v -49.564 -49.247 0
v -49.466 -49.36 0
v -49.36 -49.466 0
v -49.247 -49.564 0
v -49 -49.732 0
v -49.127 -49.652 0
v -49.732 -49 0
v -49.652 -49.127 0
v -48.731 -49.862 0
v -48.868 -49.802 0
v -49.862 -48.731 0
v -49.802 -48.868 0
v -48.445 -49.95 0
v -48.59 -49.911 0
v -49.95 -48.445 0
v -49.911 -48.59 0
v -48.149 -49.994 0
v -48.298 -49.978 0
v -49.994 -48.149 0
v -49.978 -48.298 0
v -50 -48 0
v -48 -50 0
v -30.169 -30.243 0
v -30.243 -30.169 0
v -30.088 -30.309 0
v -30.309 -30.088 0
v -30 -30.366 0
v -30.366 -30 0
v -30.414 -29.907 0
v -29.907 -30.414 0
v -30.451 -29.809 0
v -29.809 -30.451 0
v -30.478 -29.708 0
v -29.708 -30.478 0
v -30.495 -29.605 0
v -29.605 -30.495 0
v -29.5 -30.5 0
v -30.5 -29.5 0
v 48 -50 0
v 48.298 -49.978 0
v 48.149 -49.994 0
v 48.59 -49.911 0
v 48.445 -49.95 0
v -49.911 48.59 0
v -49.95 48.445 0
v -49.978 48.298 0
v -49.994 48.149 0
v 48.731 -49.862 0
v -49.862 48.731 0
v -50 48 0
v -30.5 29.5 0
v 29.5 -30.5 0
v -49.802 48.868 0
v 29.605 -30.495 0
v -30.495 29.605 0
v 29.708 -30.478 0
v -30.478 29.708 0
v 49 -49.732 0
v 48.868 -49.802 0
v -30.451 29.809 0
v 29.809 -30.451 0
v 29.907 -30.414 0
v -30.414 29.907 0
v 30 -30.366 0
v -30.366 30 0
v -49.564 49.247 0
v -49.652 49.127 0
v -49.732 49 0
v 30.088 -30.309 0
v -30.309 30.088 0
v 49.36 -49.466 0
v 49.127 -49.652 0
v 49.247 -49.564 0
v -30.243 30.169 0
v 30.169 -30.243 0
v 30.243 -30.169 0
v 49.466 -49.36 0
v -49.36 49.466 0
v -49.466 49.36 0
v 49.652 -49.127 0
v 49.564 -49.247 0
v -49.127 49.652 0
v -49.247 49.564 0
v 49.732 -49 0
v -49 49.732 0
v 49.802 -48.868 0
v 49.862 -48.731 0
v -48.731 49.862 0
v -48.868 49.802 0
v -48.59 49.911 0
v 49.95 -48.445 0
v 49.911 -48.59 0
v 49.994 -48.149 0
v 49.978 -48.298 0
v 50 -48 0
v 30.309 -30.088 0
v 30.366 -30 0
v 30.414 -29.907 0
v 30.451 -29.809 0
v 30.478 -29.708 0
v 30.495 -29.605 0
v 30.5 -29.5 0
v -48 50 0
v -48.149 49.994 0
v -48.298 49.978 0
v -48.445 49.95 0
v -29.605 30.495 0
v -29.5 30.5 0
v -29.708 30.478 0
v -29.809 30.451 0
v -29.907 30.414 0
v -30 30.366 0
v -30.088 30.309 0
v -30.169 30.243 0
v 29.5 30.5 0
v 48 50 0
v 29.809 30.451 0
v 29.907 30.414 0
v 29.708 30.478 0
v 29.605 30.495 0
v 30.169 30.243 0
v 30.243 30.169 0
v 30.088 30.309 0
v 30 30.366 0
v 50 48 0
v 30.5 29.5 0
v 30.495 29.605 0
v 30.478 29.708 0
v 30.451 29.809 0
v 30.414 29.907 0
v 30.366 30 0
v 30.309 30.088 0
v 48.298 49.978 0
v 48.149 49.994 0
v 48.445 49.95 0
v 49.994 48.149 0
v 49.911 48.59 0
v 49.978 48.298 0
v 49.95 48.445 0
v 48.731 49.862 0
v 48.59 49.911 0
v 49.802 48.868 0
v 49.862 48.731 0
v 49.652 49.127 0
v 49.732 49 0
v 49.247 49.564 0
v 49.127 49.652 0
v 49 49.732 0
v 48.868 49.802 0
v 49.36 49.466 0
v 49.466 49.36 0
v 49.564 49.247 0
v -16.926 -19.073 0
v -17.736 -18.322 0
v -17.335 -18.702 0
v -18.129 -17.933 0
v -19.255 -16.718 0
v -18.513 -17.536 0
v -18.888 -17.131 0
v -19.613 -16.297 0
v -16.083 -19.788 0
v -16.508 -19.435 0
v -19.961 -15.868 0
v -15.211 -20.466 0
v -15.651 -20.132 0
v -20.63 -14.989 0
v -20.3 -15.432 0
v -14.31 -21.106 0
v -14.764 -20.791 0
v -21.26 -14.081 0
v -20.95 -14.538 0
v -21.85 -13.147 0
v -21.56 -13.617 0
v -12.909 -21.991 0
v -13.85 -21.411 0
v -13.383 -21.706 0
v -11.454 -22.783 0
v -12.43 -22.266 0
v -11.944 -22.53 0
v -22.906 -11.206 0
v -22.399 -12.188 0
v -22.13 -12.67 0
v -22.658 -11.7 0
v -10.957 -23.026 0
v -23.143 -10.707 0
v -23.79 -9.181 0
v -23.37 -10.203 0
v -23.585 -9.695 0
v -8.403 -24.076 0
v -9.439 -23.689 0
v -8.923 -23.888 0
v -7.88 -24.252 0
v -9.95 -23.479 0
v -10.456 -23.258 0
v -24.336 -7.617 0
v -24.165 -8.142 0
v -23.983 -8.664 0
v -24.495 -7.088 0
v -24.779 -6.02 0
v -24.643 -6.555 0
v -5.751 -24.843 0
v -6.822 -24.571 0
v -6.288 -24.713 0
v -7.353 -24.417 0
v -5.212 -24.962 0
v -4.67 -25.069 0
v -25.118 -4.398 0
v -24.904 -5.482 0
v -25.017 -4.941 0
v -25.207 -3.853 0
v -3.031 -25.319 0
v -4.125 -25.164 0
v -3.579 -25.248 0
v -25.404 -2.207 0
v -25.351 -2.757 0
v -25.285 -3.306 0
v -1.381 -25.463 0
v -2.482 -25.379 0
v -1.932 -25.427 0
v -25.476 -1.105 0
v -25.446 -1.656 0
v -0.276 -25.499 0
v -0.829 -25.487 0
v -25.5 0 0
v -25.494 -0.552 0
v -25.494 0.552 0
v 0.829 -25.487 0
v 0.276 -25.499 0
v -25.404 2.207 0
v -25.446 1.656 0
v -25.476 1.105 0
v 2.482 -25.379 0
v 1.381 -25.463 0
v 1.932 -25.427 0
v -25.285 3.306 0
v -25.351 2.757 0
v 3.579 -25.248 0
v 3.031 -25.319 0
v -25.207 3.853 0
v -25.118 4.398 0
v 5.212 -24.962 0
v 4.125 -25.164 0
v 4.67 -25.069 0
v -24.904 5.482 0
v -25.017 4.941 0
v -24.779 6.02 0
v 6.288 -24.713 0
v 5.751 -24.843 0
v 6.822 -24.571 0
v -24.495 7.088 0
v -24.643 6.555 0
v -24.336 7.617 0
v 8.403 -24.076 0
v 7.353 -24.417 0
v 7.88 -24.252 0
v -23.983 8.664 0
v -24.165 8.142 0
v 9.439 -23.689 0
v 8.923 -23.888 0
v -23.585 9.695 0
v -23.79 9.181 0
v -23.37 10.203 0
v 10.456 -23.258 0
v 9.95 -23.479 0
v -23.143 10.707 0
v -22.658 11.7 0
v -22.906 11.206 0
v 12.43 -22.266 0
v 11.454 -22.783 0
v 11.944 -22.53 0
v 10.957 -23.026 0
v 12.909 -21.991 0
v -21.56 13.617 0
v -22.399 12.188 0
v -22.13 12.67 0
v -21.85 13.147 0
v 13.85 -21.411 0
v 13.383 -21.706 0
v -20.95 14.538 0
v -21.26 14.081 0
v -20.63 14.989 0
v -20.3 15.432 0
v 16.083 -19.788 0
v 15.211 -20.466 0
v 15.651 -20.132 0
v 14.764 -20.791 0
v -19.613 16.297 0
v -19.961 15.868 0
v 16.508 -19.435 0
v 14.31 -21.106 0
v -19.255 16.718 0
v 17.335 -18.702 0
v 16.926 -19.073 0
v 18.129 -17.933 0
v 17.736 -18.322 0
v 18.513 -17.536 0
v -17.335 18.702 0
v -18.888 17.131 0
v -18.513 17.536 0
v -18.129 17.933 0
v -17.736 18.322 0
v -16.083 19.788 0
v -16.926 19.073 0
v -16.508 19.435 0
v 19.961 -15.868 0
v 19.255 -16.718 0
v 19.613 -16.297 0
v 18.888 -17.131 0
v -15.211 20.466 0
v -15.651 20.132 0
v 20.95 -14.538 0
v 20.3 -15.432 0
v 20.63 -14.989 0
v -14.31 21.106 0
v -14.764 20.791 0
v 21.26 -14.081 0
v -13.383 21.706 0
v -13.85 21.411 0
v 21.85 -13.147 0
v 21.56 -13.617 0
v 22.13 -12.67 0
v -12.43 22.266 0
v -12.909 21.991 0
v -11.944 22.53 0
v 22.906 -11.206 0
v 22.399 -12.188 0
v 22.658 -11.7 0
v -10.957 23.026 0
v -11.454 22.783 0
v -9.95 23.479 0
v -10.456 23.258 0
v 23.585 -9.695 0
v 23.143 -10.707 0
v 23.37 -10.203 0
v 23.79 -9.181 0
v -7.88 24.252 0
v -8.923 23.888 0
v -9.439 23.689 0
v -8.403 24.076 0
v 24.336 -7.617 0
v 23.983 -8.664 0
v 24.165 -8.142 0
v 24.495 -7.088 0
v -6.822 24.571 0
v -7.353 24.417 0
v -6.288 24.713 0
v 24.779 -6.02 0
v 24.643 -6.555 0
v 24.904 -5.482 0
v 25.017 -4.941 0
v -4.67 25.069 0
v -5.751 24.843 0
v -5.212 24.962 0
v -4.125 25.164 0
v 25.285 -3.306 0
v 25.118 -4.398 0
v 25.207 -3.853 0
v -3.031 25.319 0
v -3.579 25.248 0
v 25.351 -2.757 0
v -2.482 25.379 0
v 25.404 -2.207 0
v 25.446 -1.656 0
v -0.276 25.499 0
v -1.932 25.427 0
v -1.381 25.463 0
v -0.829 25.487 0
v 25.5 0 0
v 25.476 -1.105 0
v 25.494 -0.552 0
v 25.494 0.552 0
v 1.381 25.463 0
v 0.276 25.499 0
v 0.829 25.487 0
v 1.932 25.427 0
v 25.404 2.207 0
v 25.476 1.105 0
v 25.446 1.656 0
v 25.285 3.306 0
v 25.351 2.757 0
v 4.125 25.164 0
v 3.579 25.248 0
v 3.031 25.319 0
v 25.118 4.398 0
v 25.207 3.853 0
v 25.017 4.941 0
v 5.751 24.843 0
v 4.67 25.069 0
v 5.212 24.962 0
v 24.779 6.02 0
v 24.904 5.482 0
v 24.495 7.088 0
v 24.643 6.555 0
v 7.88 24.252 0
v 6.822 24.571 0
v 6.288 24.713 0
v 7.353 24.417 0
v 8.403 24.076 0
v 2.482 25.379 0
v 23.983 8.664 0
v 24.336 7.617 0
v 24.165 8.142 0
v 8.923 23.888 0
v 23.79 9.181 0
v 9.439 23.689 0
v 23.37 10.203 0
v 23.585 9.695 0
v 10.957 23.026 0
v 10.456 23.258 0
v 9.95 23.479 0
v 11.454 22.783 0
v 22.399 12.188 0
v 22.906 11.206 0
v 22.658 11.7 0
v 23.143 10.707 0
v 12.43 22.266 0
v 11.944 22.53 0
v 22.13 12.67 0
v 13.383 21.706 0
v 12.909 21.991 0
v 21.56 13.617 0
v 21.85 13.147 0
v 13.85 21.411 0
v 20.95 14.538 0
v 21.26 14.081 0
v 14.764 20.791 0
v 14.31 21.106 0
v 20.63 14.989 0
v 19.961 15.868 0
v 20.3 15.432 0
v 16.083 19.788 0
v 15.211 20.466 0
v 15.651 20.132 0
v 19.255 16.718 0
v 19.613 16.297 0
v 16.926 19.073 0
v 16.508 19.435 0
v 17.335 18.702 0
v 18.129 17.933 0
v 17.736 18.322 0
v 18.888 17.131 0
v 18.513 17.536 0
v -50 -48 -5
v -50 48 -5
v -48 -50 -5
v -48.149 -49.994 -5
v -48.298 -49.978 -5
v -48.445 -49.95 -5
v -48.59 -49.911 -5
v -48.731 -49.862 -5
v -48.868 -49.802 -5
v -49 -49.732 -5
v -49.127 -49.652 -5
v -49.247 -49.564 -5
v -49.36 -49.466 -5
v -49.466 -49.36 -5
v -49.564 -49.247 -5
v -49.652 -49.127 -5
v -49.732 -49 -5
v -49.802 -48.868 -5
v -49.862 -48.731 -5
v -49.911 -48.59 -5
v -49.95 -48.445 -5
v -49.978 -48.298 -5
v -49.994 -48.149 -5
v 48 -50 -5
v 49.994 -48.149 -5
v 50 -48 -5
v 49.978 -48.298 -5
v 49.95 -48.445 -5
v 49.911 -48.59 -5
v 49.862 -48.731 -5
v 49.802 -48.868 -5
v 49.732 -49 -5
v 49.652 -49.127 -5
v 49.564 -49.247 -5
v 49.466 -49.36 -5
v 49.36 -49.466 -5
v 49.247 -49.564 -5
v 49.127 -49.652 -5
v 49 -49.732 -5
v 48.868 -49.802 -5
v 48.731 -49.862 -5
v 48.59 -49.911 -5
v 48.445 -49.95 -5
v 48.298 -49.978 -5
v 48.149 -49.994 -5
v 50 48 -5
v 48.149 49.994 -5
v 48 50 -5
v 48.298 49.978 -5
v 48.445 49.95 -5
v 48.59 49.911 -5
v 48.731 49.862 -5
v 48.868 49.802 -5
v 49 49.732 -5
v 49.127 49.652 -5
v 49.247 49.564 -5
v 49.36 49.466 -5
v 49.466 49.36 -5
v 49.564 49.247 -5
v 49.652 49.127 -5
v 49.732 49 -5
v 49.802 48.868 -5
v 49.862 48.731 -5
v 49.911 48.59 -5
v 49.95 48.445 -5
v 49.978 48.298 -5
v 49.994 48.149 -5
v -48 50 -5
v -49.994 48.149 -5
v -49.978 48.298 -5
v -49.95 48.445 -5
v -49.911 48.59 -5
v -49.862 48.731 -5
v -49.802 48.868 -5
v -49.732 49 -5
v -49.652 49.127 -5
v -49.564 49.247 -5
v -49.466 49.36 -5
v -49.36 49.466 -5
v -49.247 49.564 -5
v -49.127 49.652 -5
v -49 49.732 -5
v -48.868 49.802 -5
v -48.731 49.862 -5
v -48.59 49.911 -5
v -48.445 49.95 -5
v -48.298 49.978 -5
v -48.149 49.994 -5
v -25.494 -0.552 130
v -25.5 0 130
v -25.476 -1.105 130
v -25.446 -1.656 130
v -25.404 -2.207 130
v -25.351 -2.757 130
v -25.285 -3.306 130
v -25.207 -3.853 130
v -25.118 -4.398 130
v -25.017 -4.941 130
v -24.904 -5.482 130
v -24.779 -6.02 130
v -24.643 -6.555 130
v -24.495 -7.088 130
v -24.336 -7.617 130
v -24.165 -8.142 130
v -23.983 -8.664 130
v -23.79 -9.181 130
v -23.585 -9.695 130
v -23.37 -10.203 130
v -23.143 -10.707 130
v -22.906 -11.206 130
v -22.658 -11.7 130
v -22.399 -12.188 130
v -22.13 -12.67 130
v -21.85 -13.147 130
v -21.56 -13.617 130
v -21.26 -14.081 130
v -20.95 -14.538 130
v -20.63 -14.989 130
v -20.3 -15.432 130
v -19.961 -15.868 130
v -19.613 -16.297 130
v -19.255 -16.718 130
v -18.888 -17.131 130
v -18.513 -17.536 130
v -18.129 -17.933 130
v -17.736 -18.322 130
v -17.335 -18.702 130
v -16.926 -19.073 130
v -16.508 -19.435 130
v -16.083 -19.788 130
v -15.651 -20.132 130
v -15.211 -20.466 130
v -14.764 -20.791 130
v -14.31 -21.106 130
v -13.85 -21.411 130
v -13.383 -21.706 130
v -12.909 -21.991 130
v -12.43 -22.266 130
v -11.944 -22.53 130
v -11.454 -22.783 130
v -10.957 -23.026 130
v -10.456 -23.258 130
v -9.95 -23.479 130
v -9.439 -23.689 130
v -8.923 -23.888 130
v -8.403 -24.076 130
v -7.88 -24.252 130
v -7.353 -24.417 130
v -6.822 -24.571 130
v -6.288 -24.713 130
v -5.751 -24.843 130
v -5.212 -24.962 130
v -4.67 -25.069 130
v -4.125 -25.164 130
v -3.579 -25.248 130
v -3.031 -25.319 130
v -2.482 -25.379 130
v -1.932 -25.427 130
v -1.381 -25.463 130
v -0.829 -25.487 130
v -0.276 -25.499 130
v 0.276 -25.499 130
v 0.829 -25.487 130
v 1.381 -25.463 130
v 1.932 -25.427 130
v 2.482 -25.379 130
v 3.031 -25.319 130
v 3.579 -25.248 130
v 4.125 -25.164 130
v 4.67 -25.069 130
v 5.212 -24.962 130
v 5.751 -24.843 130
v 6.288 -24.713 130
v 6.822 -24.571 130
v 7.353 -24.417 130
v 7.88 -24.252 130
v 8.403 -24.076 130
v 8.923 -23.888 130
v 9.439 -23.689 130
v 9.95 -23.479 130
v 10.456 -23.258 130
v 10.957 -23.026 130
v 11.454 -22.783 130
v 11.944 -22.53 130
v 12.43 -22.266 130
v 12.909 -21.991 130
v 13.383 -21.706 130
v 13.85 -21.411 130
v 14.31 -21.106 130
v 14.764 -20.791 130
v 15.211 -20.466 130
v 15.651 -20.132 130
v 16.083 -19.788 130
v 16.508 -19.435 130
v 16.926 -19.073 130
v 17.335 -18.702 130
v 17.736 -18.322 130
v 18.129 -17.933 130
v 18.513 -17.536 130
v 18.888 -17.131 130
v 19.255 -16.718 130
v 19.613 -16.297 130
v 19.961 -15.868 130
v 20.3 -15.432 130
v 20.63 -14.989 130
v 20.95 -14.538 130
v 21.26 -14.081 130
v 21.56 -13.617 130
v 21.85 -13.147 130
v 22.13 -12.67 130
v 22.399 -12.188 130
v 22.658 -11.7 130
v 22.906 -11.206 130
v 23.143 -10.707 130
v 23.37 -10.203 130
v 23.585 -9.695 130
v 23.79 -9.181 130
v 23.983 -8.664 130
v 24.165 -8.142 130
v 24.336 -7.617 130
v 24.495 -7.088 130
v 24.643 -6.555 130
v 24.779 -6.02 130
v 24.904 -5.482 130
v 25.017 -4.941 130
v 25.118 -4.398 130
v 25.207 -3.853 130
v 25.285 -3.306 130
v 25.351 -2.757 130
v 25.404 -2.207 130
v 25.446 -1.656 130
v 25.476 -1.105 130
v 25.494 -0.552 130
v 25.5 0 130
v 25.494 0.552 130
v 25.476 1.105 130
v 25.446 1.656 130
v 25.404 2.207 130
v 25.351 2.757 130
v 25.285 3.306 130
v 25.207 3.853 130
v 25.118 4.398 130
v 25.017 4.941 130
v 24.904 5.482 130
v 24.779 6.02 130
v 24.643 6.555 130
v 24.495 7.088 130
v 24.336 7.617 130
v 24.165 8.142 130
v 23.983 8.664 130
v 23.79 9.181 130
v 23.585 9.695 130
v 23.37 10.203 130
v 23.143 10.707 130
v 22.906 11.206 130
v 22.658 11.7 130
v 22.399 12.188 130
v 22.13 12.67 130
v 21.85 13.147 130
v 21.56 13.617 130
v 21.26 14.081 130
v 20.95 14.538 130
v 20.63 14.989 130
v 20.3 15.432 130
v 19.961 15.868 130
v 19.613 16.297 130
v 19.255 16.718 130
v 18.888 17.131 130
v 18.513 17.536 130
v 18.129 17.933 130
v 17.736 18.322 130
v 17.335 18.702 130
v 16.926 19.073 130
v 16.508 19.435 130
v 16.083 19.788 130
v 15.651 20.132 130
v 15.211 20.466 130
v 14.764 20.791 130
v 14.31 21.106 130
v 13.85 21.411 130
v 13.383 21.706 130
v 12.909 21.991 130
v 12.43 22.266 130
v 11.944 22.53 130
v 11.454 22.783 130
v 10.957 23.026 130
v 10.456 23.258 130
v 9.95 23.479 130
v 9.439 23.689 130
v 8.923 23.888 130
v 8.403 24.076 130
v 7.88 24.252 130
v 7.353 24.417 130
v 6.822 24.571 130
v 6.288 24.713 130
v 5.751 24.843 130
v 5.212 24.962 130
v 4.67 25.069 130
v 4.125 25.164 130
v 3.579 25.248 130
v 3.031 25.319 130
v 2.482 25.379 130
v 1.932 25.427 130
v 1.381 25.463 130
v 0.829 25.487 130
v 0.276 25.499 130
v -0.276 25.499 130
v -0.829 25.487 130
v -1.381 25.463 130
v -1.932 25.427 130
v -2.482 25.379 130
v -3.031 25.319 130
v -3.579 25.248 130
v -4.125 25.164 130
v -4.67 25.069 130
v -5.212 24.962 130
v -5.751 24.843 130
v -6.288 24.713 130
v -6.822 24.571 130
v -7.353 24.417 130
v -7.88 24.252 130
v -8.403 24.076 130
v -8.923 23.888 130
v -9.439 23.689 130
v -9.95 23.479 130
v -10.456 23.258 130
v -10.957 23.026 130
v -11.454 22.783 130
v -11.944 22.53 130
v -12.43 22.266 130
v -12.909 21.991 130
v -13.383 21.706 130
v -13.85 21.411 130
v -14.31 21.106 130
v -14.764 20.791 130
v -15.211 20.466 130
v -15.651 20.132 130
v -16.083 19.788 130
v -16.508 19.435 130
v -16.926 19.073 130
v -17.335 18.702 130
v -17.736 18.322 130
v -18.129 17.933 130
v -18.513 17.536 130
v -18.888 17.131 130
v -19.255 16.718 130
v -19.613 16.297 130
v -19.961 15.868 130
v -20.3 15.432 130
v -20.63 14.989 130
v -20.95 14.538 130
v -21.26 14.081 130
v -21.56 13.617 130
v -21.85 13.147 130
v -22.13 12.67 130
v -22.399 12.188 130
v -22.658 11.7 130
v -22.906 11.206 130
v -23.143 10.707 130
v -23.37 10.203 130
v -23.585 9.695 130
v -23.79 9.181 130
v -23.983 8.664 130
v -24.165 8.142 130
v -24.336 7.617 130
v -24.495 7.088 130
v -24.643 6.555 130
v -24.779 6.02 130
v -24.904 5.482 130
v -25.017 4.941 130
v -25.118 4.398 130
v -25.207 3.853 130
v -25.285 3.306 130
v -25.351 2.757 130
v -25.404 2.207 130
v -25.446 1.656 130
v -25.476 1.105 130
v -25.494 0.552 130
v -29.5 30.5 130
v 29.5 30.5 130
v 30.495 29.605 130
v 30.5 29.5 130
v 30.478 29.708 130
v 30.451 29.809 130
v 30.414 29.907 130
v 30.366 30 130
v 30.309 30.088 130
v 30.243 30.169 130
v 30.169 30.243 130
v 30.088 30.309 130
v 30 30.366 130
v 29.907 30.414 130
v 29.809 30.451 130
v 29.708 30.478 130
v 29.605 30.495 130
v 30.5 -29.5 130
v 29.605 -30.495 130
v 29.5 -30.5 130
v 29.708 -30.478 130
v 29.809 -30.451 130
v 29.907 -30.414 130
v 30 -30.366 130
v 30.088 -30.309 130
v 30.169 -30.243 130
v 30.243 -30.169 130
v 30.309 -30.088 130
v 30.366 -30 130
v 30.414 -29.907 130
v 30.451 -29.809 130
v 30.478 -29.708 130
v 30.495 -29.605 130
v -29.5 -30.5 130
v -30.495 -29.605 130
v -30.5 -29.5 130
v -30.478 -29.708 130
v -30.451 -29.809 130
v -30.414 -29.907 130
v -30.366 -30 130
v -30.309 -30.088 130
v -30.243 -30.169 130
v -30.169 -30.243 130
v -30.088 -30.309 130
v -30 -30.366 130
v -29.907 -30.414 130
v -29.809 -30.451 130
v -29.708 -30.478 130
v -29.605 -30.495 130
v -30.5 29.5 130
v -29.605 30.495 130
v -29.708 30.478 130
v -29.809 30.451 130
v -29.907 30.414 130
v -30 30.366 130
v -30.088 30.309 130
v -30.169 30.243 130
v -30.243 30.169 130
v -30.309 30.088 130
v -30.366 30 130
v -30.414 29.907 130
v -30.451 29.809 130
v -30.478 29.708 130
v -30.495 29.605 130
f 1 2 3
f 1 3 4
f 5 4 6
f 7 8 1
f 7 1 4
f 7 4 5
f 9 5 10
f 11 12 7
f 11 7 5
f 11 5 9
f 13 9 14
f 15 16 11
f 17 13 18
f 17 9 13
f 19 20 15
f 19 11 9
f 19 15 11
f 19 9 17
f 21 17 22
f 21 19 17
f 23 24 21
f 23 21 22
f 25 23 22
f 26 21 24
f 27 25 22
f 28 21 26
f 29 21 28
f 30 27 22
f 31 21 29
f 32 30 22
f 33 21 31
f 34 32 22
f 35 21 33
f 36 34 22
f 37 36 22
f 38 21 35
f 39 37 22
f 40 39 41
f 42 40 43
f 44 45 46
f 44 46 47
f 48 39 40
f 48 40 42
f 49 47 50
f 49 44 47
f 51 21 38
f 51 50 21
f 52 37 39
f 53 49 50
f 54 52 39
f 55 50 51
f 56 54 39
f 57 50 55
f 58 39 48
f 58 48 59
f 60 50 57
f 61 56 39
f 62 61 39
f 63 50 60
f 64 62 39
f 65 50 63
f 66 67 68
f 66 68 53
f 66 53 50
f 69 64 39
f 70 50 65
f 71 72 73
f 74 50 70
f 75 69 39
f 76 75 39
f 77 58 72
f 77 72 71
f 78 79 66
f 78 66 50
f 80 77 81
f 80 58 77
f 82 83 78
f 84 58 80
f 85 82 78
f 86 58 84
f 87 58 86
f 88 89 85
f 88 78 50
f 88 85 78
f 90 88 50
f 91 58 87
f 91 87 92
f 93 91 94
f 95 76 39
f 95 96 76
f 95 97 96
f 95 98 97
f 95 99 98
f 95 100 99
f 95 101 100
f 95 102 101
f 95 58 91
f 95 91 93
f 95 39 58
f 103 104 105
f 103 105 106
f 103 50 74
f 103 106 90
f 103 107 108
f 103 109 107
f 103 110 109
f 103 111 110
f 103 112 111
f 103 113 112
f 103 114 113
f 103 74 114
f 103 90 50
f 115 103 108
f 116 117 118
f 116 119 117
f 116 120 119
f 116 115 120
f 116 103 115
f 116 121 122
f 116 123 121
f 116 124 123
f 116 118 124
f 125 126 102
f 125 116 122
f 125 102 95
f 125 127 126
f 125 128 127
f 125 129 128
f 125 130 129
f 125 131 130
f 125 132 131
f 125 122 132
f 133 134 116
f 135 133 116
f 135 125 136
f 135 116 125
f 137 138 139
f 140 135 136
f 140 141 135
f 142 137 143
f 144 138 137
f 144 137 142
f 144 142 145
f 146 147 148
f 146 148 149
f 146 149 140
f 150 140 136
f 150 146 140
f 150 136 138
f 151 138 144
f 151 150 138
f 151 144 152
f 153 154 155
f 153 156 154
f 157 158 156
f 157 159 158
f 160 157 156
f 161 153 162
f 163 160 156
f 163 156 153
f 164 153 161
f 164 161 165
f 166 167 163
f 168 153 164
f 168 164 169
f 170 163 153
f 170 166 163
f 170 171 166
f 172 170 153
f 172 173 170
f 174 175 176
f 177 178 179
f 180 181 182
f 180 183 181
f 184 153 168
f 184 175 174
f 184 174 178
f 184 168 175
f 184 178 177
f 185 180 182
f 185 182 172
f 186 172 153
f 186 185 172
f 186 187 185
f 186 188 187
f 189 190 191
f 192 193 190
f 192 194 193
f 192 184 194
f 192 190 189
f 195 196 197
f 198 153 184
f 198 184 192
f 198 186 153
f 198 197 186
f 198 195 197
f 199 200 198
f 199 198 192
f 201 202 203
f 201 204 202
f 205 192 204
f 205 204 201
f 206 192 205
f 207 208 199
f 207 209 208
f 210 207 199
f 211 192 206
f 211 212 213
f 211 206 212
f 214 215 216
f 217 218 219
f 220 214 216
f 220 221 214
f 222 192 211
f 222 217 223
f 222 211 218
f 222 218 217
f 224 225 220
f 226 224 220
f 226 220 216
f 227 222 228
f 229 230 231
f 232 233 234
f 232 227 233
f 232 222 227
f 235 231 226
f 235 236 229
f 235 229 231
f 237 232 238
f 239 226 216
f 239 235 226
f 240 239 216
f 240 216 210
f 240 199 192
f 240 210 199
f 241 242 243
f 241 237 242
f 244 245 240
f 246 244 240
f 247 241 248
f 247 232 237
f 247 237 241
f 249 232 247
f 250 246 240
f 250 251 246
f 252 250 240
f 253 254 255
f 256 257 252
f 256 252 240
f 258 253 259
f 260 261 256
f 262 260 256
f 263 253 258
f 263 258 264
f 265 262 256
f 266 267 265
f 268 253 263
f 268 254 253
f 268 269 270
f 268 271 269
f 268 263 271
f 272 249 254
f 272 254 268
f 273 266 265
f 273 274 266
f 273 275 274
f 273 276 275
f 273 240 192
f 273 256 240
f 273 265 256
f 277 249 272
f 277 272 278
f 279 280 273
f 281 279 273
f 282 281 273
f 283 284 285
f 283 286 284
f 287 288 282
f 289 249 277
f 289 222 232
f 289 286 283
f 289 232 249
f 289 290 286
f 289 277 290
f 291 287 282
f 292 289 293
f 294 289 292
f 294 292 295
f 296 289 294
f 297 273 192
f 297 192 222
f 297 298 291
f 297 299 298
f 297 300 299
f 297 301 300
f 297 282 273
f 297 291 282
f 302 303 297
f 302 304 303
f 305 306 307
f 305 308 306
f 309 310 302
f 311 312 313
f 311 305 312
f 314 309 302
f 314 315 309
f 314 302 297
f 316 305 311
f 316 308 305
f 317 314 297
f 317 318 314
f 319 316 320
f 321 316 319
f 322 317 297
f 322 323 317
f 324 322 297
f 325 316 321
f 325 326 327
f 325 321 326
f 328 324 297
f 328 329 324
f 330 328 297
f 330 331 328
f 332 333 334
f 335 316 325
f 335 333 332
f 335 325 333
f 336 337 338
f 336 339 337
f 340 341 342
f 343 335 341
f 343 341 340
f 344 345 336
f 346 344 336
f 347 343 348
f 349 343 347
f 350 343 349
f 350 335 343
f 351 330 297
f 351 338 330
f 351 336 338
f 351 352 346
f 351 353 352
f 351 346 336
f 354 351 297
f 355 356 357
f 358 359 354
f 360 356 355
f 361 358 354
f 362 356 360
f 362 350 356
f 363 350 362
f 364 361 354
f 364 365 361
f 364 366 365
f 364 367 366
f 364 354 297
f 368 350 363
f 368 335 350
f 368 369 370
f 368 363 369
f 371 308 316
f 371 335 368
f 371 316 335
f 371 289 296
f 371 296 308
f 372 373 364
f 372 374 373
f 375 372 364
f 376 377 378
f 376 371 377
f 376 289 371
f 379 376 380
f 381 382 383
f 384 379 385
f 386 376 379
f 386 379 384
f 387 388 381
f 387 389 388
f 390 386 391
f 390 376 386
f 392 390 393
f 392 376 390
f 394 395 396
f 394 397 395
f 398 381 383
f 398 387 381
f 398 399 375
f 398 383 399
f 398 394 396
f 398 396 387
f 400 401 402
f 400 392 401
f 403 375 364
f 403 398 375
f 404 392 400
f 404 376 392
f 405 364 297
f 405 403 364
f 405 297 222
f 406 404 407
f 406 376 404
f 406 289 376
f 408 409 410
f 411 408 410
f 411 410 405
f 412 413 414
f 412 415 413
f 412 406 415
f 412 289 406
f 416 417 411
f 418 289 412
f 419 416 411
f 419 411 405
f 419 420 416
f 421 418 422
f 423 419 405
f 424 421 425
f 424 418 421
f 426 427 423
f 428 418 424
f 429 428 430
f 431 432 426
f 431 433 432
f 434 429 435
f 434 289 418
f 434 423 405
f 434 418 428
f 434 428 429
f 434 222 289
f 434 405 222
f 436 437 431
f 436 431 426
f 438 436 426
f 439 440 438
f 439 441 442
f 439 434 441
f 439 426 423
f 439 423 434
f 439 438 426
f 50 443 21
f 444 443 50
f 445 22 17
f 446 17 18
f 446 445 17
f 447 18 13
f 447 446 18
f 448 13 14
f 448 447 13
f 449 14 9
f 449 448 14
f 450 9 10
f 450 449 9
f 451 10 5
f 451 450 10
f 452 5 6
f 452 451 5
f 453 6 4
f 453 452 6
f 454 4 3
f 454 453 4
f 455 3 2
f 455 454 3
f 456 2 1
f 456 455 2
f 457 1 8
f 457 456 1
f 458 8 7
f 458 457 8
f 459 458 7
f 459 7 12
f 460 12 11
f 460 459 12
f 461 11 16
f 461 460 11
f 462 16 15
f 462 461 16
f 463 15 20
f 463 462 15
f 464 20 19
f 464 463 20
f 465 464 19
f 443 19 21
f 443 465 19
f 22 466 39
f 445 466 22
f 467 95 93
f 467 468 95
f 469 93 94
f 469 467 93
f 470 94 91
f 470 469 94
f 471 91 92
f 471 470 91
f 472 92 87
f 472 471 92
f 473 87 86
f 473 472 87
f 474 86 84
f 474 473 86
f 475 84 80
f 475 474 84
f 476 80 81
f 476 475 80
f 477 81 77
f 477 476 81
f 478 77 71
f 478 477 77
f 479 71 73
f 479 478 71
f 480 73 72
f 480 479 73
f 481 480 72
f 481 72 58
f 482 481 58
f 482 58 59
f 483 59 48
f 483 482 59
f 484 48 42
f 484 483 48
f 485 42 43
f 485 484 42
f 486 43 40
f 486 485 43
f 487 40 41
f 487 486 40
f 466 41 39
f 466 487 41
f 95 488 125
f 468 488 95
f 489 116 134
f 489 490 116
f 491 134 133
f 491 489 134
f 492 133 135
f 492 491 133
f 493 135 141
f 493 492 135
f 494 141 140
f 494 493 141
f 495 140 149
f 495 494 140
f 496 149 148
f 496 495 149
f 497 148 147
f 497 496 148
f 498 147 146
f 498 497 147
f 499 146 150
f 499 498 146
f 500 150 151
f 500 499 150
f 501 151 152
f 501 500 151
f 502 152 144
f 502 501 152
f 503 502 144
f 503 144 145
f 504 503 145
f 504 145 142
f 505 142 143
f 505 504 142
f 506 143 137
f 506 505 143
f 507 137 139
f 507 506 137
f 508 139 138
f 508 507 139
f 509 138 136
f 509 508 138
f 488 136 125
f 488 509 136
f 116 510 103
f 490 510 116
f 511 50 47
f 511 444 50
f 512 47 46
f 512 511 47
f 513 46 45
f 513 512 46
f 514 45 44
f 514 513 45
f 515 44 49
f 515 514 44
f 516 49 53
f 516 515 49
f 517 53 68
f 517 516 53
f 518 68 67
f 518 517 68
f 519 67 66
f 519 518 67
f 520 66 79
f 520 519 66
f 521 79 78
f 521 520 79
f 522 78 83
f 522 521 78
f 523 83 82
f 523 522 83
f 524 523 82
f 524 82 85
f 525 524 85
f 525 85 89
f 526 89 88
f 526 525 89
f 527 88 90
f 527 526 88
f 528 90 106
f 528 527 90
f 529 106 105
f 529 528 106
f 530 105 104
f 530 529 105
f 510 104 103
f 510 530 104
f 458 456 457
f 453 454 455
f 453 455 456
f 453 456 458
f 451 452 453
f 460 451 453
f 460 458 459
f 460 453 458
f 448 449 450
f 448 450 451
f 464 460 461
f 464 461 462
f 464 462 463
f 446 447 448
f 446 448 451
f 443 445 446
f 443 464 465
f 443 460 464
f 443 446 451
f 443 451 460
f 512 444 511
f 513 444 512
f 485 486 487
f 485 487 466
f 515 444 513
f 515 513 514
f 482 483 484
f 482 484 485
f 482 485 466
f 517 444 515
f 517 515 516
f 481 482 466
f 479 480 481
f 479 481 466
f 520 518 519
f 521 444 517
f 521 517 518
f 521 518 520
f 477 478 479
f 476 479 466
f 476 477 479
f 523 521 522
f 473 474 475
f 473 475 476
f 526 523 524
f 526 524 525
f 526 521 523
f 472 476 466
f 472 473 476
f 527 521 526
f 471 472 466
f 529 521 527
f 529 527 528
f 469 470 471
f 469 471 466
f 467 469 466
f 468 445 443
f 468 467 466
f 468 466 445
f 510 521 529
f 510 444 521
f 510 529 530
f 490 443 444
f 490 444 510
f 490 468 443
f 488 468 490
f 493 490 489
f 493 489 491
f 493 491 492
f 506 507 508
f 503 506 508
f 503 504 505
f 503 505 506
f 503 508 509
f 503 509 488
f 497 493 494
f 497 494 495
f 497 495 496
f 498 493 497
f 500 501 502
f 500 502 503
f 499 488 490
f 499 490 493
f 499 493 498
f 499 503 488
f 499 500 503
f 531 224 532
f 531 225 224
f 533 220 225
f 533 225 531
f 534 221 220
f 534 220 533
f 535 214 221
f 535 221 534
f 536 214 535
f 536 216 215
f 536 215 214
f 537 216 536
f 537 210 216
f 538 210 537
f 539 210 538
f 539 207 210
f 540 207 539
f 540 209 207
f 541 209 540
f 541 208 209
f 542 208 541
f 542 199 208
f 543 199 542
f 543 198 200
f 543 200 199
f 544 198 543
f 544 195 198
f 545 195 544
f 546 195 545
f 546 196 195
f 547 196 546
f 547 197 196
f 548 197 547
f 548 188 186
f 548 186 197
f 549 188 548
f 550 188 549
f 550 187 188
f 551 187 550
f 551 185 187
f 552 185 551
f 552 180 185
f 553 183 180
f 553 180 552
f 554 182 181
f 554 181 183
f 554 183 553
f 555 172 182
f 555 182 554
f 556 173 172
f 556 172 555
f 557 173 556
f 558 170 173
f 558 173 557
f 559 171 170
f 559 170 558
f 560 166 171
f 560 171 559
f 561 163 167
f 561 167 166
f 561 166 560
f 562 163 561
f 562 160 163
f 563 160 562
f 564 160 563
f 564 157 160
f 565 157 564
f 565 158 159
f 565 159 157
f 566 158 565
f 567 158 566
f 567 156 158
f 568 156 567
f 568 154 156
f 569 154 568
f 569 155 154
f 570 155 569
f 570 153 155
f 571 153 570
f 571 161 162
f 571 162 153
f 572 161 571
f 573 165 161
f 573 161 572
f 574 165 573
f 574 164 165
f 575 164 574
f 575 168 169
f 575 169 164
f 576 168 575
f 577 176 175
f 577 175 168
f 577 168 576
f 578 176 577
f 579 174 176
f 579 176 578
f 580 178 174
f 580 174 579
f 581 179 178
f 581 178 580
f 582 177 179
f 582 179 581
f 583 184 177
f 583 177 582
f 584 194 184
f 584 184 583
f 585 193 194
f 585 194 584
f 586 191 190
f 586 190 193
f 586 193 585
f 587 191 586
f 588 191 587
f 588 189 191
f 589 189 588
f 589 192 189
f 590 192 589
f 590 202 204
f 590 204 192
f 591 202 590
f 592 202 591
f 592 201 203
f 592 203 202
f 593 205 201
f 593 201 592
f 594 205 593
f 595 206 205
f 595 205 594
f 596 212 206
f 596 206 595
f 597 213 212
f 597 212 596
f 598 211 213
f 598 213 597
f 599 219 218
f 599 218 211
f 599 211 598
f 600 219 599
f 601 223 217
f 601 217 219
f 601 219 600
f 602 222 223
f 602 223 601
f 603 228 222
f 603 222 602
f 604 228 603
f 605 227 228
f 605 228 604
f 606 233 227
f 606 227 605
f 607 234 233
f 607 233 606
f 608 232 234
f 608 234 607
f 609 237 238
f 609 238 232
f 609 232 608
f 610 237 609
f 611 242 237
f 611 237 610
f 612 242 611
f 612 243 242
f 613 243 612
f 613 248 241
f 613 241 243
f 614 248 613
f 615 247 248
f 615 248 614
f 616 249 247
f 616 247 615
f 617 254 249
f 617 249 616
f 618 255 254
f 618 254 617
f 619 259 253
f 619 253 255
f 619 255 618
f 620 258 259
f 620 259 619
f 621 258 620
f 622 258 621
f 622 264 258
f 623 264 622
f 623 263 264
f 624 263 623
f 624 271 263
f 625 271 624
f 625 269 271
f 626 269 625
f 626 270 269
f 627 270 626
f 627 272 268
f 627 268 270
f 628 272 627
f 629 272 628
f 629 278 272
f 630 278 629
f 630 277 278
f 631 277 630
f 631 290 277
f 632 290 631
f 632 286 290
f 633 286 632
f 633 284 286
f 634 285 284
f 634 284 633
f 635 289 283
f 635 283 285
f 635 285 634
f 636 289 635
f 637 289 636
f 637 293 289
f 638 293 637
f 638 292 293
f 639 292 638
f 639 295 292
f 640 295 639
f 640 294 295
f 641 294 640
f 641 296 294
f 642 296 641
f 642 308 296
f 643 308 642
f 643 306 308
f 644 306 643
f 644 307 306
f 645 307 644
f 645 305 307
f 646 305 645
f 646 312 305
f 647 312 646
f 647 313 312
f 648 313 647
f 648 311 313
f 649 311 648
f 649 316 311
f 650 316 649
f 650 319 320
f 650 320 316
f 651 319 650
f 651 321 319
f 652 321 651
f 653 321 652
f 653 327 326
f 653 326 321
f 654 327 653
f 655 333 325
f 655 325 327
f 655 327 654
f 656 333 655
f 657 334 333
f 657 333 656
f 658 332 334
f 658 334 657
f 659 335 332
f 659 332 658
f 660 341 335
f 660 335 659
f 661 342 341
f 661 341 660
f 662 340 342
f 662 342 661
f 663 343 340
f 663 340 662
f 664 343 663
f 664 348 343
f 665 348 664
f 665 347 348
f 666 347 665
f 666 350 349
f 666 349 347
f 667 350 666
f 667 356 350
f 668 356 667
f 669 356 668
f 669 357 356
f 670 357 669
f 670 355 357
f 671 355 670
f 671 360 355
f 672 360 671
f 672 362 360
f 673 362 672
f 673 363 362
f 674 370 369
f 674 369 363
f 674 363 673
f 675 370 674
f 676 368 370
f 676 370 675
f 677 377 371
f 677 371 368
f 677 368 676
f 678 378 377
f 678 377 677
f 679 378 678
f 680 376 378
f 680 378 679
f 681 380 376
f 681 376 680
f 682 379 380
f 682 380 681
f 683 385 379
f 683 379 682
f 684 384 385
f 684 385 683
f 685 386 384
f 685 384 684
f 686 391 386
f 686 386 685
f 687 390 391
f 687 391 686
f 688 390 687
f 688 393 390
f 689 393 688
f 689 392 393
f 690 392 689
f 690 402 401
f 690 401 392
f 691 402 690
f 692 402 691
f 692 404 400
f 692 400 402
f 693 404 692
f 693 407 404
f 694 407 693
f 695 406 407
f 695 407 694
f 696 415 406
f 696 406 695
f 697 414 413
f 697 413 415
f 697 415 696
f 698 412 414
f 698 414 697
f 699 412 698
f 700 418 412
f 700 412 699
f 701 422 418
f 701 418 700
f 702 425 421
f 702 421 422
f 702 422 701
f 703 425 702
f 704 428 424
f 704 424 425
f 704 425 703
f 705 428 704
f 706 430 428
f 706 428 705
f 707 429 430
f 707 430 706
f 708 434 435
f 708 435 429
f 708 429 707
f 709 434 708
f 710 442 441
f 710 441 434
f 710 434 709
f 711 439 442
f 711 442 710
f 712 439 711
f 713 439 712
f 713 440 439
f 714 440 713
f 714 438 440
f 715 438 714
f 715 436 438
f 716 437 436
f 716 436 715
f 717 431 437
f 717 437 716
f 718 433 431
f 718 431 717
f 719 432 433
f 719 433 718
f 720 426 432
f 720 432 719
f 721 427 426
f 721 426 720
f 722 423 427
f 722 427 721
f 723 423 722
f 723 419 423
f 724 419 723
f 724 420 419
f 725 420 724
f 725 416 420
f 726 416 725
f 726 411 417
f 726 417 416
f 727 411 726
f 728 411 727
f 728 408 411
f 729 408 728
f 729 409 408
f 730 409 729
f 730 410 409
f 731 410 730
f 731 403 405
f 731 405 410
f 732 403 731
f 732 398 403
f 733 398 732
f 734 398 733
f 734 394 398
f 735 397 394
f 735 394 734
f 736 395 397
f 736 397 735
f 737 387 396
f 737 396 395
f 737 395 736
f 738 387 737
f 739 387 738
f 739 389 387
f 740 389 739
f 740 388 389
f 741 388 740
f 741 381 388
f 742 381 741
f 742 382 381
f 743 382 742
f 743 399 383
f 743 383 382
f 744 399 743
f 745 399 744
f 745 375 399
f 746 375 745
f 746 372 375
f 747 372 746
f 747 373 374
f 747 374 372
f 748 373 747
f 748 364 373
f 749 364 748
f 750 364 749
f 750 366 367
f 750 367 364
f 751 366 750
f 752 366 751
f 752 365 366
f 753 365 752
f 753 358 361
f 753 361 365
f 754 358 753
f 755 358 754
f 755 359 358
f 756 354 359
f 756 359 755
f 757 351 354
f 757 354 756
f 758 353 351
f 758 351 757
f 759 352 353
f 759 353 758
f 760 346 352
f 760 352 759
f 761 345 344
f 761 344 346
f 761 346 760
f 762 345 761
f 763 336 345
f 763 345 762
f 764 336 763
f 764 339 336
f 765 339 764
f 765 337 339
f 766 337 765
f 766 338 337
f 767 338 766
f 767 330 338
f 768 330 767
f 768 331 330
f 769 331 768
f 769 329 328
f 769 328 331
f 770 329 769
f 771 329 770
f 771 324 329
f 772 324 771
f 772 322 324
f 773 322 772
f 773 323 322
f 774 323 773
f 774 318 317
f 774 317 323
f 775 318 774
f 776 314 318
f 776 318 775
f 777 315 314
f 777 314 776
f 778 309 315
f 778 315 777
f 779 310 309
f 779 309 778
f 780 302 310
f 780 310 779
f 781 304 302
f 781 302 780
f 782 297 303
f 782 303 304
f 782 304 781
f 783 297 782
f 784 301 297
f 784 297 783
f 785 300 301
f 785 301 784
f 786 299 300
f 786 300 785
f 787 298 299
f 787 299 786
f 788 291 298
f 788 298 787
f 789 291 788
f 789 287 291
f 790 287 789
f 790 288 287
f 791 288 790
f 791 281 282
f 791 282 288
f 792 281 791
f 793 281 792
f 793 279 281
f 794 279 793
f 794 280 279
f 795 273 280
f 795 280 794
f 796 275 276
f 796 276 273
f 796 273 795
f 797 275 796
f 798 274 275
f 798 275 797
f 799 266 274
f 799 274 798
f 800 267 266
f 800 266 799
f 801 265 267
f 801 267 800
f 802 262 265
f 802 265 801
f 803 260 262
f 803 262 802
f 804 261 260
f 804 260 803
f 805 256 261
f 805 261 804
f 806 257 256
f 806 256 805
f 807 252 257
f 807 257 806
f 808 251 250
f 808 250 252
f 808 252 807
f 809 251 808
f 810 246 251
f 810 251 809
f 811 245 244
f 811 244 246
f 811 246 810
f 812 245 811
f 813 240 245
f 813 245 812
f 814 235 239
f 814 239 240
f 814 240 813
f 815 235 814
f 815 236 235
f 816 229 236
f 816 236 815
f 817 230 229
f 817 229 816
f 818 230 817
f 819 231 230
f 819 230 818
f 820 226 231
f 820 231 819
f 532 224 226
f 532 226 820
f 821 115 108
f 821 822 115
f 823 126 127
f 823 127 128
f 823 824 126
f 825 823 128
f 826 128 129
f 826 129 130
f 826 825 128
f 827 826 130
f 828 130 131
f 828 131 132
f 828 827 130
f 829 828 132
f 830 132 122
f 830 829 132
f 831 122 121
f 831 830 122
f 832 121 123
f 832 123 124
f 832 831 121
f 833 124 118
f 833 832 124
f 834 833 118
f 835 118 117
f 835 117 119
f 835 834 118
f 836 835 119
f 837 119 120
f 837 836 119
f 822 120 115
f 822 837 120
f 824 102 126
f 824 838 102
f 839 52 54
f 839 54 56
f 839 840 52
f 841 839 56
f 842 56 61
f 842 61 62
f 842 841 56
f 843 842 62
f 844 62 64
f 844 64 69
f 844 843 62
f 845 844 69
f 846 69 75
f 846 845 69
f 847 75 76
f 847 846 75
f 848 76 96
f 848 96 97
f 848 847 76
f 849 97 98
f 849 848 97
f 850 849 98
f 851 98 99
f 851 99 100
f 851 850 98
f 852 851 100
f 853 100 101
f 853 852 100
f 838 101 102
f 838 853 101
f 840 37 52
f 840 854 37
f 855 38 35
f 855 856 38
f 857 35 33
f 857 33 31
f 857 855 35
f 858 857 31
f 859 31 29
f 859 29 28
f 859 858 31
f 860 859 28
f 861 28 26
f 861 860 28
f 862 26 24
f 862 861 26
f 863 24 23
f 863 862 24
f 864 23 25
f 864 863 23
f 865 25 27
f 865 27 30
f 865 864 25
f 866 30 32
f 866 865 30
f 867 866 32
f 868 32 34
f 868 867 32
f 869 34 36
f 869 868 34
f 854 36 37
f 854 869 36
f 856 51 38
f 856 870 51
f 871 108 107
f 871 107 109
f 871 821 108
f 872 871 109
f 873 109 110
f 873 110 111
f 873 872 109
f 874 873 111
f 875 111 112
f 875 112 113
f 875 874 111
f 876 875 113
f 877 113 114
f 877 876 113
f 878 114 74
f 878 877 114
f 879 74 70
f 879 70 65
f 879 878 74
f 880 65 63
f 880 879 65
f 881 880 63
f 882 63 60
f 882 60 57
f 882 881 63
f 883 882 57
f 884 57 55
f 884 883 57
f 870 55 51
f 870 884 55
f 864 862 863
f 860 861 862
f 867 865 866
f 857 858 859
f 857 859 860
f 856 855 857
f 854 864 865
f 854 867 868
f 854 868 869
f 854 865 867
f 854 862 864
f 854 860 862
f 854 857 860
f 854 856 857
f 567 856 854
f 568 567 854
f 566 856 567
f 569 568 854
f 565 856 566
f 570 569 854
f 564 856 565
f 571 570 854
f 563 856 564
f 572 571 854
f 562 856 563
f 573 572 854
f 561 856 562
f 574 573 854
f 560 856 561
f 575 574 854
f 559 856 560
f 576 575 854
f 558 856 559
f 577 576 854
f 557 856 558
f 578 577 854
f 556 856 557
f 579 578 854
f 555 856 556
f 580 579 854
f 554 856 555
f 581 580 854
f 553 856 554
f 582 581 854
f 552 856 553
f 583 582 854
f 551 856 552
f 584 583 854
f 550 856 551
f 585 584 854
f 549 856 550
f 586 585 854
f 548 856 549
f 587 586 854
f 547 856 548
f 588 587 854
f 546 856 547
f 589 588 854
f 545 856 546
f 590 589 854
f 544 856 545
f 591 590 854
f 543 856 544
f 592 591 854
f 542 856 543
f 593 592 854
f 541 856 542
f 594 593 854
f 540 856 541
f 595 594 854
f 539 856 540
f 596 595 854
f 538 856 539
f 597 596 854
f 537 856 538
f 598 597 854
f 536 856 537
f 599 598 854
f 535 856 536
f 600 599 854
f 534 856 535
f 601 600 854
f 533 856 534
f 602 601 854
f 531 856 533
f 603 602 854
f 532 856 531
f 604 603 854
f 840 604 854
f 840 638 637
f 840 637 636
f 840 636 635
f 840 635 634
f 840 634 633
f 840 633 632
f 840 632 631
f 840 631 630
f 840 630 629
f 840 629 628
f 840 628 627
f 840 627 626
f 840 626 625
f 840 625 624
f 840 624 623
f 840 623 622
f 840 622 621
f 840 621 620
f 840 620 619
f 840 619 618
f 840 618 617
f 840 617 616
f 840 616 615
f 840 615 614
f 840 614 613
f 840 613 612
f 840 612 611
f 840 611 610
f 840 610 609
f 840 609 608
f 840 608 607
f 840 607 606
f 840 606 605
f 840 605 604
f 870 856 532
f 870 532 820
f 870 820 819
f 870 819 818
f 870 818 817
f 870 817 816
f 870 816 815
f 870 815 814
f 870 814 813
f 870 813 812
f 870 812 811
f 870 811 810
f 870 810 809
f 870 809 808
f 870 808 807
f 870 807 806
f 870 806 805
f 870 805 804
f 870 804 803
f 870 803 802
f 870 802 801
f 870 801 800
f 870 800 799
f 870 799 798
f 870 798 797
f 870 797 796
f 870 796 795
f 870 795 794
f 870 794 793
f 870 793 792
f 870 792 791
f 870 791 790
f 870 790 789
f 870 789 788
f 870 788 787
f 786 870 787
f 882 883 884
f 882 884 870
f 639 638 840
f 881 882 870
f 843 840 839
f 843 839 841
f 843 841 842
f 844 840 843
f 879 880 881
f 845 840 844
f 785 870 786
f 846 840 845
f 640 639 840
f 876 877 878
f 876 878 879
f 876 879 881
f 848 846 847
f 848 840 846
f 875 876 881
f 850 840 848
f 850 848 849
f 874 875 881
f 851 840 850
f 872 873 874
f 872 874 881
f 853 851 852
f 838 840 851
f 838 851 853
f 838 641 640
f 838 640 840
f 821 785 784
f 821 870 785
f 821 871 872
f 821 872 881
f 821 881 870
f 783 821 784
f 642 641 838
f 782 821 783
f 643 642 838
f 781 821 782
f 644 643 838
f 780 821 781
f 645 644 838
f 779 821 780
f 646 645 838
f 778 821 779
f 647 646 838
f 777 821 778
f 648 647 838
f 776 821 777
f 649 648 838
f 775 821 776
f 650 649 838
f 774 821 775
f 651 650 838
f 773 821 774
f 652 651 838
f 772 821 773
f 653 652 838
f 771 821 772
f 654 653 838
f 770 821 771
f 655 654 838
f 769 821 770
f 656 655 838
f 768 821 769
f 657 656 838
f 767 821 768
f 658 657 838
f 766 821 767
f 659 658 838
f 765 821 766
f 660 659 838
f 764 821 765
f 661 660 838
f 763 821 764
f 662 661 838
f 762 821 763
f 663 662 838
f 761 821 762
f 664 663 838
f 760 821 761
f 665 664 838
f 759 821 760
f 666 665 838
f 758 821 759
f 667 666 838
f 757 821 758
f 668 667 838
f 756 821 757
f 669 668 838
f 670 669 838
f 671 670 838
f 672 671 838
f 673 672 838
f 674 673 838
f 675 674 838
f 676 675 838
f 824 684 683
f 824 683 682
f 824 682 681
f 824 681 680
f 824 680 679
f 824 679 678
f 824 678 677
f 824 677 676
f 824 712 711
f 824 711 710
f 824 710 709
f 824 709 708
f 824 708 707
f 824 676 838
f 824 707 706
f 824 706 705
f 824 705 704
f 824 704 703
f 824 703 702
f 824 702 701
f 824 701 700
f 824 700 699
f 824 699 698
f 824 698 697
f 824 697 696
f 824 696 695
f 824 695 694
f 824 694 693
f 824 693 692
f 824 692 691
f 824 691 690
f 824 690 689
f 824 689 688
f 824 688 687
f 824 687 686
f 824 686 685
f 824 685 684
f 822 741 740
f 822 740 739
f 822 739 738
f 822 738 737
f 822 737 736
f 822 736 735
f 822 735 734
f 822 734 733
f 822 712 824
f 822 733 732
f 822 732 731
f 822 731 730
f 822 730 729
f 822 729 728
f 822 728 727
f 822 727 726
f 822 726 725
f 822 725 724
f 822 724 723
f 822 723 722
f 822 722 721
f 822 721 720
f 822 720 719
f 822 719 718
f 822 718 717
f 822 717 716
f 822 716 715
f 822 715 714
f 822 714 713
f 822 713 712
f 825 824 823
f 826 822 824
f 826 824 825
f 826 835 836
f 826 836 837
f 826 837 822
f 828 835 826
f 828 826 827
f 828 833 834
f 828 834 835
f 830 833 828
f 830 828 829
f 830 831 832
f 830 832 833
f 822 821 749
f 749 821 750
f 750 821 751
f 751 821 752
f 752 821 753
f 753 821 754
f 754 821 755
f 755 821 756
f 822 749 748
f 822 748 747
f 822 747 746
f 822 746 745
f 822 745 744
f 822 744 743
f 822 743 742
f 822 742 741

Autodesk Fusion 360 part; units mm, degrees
sketch "Sketch1" plane through (0, 0, 0) normal (0, 0, 1) x (1, 0, 0)
  circle A0 centre (0, 0) radius 25.5
  line L0 (29.5, -30.5) -> (-29.5, -30.5)
  line L1 (-30.5, -29.5) -> (-30.5, 29.5)
  line L2 (-29.5, 30.5) -> (29.5, 30.5)
  line L3 (30.5, 29.5) -> (30.5, -29.5)
  line L4 (30.5, -30.5) -> (-30.5, 30.5) construction
  line L5 (-30.5, -30.5) -> (30.5, 30.5) construction
  arc A1 (-29.5, 30.5) -> (-30.5, 29.5) centre (-29.5, 29.5) ccw
  arc A2 (30.5, 29.5) -> (29.5, 30.5) centre (29.5, 29.5) ccw
  arc A3 (29.5, -30.5) -> (30.5, -29.5) centre (29.5, -29.5) ccw
  arc A4 (-30.5, -29.5) -> (-29.5, -30.5) centre (-29.5, -29.5) ccw
  line L6 (48, -50) -> (-48, -50)
  line L7 (-50, -48) -> (-50, 48)
  line L8 (-48, 50) -> (48, 50)
  line L9 (50, 48) -> (50, -48)
  line L10 (50, -50) -> (-50, 50) construction
  line L11 (-50, -50) -> (50, 50) construction
  arc A5 (-48, 50) -> (-50, 48) centre (-48, 48) ccw
  arc A6 (50, 48) -> (48, 50) centre (48, 48) ccw
  arc A7 (48, -50) -> (50, -48) centre (48, -48) ccw
  arc A8 (-50, -48) -> (-48, -50) centre (-48, -48) ccw
  line L12 (0, -30.5) -> (22, -30.5)
  line L13 (22, -30.5) -> (22, 30.5)
  line L14 (22, 30.5) -> (0, 30.5)
  line L15 (0, 30.5) -> (0, -30.5)
  line L16 (-22, -30.5) -> (-22, 30.5)
  line L17 (-30.5, 0) -> (-30.5, 22)
  line L18 (-30.5, 22) -> (30.5, 22)
  line L19 (-30.5, 22) -> (30.5, 22)
  line L20 (30.5, 22) -> (30.5, -22)
  line L21 (30.5, -22) -> (-30.5, -22)
  line L22 (-30.5, -22) -> (-30.5, 22)
  dimension "d1" = 51
  dimension "d2" = 61
  dimension "d3" = 61
  dimension "d4" = 1
  dimension "d5" = 1
  dimension "d6" = 1
  dimension "d7" = 1
  dimension "d8" = 100
  dimension "d9" = 100
  dimension "d14" = 2
  dimension "d15" = 2
  dimension "d16" = 2
  dimension "d17" = 2
  dimension "d18" = 22
  dimension "d19" = 22
  dimension "d20" = 61
  dimension "d21" = 44
extrude "Extrude1" add sketch "Sketch1" along normal blind 130 contours A0 L3 L13 L18 L19 L20 L21 | A0 L13 L18 L19 | A0 L13 L21 | A0 L2 L13 L14 L15 L18 L19 | L2 L3 A2 L13 L18 L19 | A0 L0 L12 L13 L15 L21 | L0 L3 A3 L13 L21 | A0 L2 L15 L16 L18 L19 | A0 L0 L15 L16 L21 | A0 L16 L18 L19 | A0 L16 L21 | A0 L1 L16 L17 L18 L19 L21 L22 | L1 L2 A1 L16 L18 L19 | L0 L1 A4 L16 L21
extrude "Extrude2" add sketch "Sketch1" against normal blind 5 contours A0 L13 | A0 L3 L13 L18 L19 L20 L21 | A0 L13 L15 L18 L19 L21 | A0 L13 L18 L19 | A0 L13 L21 | A0 L15 L18 L19 | A0 L2 L13 L14 L15 L18 L19 | L2 L3 A2 L13 L18 L19 | A0 L0 L12 L13 L15 L21 | A0 L15 L21 | L0 L3 A3 L13 L21 | A0 L15 L18 L19 | A0 L2 L15 L16 L18 L19 | A0 L15 L16 L18 L19 L21 | A0 L0 L15 L16 L21 | A0 L15 L21 | A0 L16 L18 L19 | A0 L16 L21 | A0 L16 | A0 L1 L16 L17 L18 L19 L21 L22 | L1 L2 A1 L16 L18 L19 | L0 L1 A4 L16 L21 | L6 L7 L8 L9 A5 A6 A7 A8
